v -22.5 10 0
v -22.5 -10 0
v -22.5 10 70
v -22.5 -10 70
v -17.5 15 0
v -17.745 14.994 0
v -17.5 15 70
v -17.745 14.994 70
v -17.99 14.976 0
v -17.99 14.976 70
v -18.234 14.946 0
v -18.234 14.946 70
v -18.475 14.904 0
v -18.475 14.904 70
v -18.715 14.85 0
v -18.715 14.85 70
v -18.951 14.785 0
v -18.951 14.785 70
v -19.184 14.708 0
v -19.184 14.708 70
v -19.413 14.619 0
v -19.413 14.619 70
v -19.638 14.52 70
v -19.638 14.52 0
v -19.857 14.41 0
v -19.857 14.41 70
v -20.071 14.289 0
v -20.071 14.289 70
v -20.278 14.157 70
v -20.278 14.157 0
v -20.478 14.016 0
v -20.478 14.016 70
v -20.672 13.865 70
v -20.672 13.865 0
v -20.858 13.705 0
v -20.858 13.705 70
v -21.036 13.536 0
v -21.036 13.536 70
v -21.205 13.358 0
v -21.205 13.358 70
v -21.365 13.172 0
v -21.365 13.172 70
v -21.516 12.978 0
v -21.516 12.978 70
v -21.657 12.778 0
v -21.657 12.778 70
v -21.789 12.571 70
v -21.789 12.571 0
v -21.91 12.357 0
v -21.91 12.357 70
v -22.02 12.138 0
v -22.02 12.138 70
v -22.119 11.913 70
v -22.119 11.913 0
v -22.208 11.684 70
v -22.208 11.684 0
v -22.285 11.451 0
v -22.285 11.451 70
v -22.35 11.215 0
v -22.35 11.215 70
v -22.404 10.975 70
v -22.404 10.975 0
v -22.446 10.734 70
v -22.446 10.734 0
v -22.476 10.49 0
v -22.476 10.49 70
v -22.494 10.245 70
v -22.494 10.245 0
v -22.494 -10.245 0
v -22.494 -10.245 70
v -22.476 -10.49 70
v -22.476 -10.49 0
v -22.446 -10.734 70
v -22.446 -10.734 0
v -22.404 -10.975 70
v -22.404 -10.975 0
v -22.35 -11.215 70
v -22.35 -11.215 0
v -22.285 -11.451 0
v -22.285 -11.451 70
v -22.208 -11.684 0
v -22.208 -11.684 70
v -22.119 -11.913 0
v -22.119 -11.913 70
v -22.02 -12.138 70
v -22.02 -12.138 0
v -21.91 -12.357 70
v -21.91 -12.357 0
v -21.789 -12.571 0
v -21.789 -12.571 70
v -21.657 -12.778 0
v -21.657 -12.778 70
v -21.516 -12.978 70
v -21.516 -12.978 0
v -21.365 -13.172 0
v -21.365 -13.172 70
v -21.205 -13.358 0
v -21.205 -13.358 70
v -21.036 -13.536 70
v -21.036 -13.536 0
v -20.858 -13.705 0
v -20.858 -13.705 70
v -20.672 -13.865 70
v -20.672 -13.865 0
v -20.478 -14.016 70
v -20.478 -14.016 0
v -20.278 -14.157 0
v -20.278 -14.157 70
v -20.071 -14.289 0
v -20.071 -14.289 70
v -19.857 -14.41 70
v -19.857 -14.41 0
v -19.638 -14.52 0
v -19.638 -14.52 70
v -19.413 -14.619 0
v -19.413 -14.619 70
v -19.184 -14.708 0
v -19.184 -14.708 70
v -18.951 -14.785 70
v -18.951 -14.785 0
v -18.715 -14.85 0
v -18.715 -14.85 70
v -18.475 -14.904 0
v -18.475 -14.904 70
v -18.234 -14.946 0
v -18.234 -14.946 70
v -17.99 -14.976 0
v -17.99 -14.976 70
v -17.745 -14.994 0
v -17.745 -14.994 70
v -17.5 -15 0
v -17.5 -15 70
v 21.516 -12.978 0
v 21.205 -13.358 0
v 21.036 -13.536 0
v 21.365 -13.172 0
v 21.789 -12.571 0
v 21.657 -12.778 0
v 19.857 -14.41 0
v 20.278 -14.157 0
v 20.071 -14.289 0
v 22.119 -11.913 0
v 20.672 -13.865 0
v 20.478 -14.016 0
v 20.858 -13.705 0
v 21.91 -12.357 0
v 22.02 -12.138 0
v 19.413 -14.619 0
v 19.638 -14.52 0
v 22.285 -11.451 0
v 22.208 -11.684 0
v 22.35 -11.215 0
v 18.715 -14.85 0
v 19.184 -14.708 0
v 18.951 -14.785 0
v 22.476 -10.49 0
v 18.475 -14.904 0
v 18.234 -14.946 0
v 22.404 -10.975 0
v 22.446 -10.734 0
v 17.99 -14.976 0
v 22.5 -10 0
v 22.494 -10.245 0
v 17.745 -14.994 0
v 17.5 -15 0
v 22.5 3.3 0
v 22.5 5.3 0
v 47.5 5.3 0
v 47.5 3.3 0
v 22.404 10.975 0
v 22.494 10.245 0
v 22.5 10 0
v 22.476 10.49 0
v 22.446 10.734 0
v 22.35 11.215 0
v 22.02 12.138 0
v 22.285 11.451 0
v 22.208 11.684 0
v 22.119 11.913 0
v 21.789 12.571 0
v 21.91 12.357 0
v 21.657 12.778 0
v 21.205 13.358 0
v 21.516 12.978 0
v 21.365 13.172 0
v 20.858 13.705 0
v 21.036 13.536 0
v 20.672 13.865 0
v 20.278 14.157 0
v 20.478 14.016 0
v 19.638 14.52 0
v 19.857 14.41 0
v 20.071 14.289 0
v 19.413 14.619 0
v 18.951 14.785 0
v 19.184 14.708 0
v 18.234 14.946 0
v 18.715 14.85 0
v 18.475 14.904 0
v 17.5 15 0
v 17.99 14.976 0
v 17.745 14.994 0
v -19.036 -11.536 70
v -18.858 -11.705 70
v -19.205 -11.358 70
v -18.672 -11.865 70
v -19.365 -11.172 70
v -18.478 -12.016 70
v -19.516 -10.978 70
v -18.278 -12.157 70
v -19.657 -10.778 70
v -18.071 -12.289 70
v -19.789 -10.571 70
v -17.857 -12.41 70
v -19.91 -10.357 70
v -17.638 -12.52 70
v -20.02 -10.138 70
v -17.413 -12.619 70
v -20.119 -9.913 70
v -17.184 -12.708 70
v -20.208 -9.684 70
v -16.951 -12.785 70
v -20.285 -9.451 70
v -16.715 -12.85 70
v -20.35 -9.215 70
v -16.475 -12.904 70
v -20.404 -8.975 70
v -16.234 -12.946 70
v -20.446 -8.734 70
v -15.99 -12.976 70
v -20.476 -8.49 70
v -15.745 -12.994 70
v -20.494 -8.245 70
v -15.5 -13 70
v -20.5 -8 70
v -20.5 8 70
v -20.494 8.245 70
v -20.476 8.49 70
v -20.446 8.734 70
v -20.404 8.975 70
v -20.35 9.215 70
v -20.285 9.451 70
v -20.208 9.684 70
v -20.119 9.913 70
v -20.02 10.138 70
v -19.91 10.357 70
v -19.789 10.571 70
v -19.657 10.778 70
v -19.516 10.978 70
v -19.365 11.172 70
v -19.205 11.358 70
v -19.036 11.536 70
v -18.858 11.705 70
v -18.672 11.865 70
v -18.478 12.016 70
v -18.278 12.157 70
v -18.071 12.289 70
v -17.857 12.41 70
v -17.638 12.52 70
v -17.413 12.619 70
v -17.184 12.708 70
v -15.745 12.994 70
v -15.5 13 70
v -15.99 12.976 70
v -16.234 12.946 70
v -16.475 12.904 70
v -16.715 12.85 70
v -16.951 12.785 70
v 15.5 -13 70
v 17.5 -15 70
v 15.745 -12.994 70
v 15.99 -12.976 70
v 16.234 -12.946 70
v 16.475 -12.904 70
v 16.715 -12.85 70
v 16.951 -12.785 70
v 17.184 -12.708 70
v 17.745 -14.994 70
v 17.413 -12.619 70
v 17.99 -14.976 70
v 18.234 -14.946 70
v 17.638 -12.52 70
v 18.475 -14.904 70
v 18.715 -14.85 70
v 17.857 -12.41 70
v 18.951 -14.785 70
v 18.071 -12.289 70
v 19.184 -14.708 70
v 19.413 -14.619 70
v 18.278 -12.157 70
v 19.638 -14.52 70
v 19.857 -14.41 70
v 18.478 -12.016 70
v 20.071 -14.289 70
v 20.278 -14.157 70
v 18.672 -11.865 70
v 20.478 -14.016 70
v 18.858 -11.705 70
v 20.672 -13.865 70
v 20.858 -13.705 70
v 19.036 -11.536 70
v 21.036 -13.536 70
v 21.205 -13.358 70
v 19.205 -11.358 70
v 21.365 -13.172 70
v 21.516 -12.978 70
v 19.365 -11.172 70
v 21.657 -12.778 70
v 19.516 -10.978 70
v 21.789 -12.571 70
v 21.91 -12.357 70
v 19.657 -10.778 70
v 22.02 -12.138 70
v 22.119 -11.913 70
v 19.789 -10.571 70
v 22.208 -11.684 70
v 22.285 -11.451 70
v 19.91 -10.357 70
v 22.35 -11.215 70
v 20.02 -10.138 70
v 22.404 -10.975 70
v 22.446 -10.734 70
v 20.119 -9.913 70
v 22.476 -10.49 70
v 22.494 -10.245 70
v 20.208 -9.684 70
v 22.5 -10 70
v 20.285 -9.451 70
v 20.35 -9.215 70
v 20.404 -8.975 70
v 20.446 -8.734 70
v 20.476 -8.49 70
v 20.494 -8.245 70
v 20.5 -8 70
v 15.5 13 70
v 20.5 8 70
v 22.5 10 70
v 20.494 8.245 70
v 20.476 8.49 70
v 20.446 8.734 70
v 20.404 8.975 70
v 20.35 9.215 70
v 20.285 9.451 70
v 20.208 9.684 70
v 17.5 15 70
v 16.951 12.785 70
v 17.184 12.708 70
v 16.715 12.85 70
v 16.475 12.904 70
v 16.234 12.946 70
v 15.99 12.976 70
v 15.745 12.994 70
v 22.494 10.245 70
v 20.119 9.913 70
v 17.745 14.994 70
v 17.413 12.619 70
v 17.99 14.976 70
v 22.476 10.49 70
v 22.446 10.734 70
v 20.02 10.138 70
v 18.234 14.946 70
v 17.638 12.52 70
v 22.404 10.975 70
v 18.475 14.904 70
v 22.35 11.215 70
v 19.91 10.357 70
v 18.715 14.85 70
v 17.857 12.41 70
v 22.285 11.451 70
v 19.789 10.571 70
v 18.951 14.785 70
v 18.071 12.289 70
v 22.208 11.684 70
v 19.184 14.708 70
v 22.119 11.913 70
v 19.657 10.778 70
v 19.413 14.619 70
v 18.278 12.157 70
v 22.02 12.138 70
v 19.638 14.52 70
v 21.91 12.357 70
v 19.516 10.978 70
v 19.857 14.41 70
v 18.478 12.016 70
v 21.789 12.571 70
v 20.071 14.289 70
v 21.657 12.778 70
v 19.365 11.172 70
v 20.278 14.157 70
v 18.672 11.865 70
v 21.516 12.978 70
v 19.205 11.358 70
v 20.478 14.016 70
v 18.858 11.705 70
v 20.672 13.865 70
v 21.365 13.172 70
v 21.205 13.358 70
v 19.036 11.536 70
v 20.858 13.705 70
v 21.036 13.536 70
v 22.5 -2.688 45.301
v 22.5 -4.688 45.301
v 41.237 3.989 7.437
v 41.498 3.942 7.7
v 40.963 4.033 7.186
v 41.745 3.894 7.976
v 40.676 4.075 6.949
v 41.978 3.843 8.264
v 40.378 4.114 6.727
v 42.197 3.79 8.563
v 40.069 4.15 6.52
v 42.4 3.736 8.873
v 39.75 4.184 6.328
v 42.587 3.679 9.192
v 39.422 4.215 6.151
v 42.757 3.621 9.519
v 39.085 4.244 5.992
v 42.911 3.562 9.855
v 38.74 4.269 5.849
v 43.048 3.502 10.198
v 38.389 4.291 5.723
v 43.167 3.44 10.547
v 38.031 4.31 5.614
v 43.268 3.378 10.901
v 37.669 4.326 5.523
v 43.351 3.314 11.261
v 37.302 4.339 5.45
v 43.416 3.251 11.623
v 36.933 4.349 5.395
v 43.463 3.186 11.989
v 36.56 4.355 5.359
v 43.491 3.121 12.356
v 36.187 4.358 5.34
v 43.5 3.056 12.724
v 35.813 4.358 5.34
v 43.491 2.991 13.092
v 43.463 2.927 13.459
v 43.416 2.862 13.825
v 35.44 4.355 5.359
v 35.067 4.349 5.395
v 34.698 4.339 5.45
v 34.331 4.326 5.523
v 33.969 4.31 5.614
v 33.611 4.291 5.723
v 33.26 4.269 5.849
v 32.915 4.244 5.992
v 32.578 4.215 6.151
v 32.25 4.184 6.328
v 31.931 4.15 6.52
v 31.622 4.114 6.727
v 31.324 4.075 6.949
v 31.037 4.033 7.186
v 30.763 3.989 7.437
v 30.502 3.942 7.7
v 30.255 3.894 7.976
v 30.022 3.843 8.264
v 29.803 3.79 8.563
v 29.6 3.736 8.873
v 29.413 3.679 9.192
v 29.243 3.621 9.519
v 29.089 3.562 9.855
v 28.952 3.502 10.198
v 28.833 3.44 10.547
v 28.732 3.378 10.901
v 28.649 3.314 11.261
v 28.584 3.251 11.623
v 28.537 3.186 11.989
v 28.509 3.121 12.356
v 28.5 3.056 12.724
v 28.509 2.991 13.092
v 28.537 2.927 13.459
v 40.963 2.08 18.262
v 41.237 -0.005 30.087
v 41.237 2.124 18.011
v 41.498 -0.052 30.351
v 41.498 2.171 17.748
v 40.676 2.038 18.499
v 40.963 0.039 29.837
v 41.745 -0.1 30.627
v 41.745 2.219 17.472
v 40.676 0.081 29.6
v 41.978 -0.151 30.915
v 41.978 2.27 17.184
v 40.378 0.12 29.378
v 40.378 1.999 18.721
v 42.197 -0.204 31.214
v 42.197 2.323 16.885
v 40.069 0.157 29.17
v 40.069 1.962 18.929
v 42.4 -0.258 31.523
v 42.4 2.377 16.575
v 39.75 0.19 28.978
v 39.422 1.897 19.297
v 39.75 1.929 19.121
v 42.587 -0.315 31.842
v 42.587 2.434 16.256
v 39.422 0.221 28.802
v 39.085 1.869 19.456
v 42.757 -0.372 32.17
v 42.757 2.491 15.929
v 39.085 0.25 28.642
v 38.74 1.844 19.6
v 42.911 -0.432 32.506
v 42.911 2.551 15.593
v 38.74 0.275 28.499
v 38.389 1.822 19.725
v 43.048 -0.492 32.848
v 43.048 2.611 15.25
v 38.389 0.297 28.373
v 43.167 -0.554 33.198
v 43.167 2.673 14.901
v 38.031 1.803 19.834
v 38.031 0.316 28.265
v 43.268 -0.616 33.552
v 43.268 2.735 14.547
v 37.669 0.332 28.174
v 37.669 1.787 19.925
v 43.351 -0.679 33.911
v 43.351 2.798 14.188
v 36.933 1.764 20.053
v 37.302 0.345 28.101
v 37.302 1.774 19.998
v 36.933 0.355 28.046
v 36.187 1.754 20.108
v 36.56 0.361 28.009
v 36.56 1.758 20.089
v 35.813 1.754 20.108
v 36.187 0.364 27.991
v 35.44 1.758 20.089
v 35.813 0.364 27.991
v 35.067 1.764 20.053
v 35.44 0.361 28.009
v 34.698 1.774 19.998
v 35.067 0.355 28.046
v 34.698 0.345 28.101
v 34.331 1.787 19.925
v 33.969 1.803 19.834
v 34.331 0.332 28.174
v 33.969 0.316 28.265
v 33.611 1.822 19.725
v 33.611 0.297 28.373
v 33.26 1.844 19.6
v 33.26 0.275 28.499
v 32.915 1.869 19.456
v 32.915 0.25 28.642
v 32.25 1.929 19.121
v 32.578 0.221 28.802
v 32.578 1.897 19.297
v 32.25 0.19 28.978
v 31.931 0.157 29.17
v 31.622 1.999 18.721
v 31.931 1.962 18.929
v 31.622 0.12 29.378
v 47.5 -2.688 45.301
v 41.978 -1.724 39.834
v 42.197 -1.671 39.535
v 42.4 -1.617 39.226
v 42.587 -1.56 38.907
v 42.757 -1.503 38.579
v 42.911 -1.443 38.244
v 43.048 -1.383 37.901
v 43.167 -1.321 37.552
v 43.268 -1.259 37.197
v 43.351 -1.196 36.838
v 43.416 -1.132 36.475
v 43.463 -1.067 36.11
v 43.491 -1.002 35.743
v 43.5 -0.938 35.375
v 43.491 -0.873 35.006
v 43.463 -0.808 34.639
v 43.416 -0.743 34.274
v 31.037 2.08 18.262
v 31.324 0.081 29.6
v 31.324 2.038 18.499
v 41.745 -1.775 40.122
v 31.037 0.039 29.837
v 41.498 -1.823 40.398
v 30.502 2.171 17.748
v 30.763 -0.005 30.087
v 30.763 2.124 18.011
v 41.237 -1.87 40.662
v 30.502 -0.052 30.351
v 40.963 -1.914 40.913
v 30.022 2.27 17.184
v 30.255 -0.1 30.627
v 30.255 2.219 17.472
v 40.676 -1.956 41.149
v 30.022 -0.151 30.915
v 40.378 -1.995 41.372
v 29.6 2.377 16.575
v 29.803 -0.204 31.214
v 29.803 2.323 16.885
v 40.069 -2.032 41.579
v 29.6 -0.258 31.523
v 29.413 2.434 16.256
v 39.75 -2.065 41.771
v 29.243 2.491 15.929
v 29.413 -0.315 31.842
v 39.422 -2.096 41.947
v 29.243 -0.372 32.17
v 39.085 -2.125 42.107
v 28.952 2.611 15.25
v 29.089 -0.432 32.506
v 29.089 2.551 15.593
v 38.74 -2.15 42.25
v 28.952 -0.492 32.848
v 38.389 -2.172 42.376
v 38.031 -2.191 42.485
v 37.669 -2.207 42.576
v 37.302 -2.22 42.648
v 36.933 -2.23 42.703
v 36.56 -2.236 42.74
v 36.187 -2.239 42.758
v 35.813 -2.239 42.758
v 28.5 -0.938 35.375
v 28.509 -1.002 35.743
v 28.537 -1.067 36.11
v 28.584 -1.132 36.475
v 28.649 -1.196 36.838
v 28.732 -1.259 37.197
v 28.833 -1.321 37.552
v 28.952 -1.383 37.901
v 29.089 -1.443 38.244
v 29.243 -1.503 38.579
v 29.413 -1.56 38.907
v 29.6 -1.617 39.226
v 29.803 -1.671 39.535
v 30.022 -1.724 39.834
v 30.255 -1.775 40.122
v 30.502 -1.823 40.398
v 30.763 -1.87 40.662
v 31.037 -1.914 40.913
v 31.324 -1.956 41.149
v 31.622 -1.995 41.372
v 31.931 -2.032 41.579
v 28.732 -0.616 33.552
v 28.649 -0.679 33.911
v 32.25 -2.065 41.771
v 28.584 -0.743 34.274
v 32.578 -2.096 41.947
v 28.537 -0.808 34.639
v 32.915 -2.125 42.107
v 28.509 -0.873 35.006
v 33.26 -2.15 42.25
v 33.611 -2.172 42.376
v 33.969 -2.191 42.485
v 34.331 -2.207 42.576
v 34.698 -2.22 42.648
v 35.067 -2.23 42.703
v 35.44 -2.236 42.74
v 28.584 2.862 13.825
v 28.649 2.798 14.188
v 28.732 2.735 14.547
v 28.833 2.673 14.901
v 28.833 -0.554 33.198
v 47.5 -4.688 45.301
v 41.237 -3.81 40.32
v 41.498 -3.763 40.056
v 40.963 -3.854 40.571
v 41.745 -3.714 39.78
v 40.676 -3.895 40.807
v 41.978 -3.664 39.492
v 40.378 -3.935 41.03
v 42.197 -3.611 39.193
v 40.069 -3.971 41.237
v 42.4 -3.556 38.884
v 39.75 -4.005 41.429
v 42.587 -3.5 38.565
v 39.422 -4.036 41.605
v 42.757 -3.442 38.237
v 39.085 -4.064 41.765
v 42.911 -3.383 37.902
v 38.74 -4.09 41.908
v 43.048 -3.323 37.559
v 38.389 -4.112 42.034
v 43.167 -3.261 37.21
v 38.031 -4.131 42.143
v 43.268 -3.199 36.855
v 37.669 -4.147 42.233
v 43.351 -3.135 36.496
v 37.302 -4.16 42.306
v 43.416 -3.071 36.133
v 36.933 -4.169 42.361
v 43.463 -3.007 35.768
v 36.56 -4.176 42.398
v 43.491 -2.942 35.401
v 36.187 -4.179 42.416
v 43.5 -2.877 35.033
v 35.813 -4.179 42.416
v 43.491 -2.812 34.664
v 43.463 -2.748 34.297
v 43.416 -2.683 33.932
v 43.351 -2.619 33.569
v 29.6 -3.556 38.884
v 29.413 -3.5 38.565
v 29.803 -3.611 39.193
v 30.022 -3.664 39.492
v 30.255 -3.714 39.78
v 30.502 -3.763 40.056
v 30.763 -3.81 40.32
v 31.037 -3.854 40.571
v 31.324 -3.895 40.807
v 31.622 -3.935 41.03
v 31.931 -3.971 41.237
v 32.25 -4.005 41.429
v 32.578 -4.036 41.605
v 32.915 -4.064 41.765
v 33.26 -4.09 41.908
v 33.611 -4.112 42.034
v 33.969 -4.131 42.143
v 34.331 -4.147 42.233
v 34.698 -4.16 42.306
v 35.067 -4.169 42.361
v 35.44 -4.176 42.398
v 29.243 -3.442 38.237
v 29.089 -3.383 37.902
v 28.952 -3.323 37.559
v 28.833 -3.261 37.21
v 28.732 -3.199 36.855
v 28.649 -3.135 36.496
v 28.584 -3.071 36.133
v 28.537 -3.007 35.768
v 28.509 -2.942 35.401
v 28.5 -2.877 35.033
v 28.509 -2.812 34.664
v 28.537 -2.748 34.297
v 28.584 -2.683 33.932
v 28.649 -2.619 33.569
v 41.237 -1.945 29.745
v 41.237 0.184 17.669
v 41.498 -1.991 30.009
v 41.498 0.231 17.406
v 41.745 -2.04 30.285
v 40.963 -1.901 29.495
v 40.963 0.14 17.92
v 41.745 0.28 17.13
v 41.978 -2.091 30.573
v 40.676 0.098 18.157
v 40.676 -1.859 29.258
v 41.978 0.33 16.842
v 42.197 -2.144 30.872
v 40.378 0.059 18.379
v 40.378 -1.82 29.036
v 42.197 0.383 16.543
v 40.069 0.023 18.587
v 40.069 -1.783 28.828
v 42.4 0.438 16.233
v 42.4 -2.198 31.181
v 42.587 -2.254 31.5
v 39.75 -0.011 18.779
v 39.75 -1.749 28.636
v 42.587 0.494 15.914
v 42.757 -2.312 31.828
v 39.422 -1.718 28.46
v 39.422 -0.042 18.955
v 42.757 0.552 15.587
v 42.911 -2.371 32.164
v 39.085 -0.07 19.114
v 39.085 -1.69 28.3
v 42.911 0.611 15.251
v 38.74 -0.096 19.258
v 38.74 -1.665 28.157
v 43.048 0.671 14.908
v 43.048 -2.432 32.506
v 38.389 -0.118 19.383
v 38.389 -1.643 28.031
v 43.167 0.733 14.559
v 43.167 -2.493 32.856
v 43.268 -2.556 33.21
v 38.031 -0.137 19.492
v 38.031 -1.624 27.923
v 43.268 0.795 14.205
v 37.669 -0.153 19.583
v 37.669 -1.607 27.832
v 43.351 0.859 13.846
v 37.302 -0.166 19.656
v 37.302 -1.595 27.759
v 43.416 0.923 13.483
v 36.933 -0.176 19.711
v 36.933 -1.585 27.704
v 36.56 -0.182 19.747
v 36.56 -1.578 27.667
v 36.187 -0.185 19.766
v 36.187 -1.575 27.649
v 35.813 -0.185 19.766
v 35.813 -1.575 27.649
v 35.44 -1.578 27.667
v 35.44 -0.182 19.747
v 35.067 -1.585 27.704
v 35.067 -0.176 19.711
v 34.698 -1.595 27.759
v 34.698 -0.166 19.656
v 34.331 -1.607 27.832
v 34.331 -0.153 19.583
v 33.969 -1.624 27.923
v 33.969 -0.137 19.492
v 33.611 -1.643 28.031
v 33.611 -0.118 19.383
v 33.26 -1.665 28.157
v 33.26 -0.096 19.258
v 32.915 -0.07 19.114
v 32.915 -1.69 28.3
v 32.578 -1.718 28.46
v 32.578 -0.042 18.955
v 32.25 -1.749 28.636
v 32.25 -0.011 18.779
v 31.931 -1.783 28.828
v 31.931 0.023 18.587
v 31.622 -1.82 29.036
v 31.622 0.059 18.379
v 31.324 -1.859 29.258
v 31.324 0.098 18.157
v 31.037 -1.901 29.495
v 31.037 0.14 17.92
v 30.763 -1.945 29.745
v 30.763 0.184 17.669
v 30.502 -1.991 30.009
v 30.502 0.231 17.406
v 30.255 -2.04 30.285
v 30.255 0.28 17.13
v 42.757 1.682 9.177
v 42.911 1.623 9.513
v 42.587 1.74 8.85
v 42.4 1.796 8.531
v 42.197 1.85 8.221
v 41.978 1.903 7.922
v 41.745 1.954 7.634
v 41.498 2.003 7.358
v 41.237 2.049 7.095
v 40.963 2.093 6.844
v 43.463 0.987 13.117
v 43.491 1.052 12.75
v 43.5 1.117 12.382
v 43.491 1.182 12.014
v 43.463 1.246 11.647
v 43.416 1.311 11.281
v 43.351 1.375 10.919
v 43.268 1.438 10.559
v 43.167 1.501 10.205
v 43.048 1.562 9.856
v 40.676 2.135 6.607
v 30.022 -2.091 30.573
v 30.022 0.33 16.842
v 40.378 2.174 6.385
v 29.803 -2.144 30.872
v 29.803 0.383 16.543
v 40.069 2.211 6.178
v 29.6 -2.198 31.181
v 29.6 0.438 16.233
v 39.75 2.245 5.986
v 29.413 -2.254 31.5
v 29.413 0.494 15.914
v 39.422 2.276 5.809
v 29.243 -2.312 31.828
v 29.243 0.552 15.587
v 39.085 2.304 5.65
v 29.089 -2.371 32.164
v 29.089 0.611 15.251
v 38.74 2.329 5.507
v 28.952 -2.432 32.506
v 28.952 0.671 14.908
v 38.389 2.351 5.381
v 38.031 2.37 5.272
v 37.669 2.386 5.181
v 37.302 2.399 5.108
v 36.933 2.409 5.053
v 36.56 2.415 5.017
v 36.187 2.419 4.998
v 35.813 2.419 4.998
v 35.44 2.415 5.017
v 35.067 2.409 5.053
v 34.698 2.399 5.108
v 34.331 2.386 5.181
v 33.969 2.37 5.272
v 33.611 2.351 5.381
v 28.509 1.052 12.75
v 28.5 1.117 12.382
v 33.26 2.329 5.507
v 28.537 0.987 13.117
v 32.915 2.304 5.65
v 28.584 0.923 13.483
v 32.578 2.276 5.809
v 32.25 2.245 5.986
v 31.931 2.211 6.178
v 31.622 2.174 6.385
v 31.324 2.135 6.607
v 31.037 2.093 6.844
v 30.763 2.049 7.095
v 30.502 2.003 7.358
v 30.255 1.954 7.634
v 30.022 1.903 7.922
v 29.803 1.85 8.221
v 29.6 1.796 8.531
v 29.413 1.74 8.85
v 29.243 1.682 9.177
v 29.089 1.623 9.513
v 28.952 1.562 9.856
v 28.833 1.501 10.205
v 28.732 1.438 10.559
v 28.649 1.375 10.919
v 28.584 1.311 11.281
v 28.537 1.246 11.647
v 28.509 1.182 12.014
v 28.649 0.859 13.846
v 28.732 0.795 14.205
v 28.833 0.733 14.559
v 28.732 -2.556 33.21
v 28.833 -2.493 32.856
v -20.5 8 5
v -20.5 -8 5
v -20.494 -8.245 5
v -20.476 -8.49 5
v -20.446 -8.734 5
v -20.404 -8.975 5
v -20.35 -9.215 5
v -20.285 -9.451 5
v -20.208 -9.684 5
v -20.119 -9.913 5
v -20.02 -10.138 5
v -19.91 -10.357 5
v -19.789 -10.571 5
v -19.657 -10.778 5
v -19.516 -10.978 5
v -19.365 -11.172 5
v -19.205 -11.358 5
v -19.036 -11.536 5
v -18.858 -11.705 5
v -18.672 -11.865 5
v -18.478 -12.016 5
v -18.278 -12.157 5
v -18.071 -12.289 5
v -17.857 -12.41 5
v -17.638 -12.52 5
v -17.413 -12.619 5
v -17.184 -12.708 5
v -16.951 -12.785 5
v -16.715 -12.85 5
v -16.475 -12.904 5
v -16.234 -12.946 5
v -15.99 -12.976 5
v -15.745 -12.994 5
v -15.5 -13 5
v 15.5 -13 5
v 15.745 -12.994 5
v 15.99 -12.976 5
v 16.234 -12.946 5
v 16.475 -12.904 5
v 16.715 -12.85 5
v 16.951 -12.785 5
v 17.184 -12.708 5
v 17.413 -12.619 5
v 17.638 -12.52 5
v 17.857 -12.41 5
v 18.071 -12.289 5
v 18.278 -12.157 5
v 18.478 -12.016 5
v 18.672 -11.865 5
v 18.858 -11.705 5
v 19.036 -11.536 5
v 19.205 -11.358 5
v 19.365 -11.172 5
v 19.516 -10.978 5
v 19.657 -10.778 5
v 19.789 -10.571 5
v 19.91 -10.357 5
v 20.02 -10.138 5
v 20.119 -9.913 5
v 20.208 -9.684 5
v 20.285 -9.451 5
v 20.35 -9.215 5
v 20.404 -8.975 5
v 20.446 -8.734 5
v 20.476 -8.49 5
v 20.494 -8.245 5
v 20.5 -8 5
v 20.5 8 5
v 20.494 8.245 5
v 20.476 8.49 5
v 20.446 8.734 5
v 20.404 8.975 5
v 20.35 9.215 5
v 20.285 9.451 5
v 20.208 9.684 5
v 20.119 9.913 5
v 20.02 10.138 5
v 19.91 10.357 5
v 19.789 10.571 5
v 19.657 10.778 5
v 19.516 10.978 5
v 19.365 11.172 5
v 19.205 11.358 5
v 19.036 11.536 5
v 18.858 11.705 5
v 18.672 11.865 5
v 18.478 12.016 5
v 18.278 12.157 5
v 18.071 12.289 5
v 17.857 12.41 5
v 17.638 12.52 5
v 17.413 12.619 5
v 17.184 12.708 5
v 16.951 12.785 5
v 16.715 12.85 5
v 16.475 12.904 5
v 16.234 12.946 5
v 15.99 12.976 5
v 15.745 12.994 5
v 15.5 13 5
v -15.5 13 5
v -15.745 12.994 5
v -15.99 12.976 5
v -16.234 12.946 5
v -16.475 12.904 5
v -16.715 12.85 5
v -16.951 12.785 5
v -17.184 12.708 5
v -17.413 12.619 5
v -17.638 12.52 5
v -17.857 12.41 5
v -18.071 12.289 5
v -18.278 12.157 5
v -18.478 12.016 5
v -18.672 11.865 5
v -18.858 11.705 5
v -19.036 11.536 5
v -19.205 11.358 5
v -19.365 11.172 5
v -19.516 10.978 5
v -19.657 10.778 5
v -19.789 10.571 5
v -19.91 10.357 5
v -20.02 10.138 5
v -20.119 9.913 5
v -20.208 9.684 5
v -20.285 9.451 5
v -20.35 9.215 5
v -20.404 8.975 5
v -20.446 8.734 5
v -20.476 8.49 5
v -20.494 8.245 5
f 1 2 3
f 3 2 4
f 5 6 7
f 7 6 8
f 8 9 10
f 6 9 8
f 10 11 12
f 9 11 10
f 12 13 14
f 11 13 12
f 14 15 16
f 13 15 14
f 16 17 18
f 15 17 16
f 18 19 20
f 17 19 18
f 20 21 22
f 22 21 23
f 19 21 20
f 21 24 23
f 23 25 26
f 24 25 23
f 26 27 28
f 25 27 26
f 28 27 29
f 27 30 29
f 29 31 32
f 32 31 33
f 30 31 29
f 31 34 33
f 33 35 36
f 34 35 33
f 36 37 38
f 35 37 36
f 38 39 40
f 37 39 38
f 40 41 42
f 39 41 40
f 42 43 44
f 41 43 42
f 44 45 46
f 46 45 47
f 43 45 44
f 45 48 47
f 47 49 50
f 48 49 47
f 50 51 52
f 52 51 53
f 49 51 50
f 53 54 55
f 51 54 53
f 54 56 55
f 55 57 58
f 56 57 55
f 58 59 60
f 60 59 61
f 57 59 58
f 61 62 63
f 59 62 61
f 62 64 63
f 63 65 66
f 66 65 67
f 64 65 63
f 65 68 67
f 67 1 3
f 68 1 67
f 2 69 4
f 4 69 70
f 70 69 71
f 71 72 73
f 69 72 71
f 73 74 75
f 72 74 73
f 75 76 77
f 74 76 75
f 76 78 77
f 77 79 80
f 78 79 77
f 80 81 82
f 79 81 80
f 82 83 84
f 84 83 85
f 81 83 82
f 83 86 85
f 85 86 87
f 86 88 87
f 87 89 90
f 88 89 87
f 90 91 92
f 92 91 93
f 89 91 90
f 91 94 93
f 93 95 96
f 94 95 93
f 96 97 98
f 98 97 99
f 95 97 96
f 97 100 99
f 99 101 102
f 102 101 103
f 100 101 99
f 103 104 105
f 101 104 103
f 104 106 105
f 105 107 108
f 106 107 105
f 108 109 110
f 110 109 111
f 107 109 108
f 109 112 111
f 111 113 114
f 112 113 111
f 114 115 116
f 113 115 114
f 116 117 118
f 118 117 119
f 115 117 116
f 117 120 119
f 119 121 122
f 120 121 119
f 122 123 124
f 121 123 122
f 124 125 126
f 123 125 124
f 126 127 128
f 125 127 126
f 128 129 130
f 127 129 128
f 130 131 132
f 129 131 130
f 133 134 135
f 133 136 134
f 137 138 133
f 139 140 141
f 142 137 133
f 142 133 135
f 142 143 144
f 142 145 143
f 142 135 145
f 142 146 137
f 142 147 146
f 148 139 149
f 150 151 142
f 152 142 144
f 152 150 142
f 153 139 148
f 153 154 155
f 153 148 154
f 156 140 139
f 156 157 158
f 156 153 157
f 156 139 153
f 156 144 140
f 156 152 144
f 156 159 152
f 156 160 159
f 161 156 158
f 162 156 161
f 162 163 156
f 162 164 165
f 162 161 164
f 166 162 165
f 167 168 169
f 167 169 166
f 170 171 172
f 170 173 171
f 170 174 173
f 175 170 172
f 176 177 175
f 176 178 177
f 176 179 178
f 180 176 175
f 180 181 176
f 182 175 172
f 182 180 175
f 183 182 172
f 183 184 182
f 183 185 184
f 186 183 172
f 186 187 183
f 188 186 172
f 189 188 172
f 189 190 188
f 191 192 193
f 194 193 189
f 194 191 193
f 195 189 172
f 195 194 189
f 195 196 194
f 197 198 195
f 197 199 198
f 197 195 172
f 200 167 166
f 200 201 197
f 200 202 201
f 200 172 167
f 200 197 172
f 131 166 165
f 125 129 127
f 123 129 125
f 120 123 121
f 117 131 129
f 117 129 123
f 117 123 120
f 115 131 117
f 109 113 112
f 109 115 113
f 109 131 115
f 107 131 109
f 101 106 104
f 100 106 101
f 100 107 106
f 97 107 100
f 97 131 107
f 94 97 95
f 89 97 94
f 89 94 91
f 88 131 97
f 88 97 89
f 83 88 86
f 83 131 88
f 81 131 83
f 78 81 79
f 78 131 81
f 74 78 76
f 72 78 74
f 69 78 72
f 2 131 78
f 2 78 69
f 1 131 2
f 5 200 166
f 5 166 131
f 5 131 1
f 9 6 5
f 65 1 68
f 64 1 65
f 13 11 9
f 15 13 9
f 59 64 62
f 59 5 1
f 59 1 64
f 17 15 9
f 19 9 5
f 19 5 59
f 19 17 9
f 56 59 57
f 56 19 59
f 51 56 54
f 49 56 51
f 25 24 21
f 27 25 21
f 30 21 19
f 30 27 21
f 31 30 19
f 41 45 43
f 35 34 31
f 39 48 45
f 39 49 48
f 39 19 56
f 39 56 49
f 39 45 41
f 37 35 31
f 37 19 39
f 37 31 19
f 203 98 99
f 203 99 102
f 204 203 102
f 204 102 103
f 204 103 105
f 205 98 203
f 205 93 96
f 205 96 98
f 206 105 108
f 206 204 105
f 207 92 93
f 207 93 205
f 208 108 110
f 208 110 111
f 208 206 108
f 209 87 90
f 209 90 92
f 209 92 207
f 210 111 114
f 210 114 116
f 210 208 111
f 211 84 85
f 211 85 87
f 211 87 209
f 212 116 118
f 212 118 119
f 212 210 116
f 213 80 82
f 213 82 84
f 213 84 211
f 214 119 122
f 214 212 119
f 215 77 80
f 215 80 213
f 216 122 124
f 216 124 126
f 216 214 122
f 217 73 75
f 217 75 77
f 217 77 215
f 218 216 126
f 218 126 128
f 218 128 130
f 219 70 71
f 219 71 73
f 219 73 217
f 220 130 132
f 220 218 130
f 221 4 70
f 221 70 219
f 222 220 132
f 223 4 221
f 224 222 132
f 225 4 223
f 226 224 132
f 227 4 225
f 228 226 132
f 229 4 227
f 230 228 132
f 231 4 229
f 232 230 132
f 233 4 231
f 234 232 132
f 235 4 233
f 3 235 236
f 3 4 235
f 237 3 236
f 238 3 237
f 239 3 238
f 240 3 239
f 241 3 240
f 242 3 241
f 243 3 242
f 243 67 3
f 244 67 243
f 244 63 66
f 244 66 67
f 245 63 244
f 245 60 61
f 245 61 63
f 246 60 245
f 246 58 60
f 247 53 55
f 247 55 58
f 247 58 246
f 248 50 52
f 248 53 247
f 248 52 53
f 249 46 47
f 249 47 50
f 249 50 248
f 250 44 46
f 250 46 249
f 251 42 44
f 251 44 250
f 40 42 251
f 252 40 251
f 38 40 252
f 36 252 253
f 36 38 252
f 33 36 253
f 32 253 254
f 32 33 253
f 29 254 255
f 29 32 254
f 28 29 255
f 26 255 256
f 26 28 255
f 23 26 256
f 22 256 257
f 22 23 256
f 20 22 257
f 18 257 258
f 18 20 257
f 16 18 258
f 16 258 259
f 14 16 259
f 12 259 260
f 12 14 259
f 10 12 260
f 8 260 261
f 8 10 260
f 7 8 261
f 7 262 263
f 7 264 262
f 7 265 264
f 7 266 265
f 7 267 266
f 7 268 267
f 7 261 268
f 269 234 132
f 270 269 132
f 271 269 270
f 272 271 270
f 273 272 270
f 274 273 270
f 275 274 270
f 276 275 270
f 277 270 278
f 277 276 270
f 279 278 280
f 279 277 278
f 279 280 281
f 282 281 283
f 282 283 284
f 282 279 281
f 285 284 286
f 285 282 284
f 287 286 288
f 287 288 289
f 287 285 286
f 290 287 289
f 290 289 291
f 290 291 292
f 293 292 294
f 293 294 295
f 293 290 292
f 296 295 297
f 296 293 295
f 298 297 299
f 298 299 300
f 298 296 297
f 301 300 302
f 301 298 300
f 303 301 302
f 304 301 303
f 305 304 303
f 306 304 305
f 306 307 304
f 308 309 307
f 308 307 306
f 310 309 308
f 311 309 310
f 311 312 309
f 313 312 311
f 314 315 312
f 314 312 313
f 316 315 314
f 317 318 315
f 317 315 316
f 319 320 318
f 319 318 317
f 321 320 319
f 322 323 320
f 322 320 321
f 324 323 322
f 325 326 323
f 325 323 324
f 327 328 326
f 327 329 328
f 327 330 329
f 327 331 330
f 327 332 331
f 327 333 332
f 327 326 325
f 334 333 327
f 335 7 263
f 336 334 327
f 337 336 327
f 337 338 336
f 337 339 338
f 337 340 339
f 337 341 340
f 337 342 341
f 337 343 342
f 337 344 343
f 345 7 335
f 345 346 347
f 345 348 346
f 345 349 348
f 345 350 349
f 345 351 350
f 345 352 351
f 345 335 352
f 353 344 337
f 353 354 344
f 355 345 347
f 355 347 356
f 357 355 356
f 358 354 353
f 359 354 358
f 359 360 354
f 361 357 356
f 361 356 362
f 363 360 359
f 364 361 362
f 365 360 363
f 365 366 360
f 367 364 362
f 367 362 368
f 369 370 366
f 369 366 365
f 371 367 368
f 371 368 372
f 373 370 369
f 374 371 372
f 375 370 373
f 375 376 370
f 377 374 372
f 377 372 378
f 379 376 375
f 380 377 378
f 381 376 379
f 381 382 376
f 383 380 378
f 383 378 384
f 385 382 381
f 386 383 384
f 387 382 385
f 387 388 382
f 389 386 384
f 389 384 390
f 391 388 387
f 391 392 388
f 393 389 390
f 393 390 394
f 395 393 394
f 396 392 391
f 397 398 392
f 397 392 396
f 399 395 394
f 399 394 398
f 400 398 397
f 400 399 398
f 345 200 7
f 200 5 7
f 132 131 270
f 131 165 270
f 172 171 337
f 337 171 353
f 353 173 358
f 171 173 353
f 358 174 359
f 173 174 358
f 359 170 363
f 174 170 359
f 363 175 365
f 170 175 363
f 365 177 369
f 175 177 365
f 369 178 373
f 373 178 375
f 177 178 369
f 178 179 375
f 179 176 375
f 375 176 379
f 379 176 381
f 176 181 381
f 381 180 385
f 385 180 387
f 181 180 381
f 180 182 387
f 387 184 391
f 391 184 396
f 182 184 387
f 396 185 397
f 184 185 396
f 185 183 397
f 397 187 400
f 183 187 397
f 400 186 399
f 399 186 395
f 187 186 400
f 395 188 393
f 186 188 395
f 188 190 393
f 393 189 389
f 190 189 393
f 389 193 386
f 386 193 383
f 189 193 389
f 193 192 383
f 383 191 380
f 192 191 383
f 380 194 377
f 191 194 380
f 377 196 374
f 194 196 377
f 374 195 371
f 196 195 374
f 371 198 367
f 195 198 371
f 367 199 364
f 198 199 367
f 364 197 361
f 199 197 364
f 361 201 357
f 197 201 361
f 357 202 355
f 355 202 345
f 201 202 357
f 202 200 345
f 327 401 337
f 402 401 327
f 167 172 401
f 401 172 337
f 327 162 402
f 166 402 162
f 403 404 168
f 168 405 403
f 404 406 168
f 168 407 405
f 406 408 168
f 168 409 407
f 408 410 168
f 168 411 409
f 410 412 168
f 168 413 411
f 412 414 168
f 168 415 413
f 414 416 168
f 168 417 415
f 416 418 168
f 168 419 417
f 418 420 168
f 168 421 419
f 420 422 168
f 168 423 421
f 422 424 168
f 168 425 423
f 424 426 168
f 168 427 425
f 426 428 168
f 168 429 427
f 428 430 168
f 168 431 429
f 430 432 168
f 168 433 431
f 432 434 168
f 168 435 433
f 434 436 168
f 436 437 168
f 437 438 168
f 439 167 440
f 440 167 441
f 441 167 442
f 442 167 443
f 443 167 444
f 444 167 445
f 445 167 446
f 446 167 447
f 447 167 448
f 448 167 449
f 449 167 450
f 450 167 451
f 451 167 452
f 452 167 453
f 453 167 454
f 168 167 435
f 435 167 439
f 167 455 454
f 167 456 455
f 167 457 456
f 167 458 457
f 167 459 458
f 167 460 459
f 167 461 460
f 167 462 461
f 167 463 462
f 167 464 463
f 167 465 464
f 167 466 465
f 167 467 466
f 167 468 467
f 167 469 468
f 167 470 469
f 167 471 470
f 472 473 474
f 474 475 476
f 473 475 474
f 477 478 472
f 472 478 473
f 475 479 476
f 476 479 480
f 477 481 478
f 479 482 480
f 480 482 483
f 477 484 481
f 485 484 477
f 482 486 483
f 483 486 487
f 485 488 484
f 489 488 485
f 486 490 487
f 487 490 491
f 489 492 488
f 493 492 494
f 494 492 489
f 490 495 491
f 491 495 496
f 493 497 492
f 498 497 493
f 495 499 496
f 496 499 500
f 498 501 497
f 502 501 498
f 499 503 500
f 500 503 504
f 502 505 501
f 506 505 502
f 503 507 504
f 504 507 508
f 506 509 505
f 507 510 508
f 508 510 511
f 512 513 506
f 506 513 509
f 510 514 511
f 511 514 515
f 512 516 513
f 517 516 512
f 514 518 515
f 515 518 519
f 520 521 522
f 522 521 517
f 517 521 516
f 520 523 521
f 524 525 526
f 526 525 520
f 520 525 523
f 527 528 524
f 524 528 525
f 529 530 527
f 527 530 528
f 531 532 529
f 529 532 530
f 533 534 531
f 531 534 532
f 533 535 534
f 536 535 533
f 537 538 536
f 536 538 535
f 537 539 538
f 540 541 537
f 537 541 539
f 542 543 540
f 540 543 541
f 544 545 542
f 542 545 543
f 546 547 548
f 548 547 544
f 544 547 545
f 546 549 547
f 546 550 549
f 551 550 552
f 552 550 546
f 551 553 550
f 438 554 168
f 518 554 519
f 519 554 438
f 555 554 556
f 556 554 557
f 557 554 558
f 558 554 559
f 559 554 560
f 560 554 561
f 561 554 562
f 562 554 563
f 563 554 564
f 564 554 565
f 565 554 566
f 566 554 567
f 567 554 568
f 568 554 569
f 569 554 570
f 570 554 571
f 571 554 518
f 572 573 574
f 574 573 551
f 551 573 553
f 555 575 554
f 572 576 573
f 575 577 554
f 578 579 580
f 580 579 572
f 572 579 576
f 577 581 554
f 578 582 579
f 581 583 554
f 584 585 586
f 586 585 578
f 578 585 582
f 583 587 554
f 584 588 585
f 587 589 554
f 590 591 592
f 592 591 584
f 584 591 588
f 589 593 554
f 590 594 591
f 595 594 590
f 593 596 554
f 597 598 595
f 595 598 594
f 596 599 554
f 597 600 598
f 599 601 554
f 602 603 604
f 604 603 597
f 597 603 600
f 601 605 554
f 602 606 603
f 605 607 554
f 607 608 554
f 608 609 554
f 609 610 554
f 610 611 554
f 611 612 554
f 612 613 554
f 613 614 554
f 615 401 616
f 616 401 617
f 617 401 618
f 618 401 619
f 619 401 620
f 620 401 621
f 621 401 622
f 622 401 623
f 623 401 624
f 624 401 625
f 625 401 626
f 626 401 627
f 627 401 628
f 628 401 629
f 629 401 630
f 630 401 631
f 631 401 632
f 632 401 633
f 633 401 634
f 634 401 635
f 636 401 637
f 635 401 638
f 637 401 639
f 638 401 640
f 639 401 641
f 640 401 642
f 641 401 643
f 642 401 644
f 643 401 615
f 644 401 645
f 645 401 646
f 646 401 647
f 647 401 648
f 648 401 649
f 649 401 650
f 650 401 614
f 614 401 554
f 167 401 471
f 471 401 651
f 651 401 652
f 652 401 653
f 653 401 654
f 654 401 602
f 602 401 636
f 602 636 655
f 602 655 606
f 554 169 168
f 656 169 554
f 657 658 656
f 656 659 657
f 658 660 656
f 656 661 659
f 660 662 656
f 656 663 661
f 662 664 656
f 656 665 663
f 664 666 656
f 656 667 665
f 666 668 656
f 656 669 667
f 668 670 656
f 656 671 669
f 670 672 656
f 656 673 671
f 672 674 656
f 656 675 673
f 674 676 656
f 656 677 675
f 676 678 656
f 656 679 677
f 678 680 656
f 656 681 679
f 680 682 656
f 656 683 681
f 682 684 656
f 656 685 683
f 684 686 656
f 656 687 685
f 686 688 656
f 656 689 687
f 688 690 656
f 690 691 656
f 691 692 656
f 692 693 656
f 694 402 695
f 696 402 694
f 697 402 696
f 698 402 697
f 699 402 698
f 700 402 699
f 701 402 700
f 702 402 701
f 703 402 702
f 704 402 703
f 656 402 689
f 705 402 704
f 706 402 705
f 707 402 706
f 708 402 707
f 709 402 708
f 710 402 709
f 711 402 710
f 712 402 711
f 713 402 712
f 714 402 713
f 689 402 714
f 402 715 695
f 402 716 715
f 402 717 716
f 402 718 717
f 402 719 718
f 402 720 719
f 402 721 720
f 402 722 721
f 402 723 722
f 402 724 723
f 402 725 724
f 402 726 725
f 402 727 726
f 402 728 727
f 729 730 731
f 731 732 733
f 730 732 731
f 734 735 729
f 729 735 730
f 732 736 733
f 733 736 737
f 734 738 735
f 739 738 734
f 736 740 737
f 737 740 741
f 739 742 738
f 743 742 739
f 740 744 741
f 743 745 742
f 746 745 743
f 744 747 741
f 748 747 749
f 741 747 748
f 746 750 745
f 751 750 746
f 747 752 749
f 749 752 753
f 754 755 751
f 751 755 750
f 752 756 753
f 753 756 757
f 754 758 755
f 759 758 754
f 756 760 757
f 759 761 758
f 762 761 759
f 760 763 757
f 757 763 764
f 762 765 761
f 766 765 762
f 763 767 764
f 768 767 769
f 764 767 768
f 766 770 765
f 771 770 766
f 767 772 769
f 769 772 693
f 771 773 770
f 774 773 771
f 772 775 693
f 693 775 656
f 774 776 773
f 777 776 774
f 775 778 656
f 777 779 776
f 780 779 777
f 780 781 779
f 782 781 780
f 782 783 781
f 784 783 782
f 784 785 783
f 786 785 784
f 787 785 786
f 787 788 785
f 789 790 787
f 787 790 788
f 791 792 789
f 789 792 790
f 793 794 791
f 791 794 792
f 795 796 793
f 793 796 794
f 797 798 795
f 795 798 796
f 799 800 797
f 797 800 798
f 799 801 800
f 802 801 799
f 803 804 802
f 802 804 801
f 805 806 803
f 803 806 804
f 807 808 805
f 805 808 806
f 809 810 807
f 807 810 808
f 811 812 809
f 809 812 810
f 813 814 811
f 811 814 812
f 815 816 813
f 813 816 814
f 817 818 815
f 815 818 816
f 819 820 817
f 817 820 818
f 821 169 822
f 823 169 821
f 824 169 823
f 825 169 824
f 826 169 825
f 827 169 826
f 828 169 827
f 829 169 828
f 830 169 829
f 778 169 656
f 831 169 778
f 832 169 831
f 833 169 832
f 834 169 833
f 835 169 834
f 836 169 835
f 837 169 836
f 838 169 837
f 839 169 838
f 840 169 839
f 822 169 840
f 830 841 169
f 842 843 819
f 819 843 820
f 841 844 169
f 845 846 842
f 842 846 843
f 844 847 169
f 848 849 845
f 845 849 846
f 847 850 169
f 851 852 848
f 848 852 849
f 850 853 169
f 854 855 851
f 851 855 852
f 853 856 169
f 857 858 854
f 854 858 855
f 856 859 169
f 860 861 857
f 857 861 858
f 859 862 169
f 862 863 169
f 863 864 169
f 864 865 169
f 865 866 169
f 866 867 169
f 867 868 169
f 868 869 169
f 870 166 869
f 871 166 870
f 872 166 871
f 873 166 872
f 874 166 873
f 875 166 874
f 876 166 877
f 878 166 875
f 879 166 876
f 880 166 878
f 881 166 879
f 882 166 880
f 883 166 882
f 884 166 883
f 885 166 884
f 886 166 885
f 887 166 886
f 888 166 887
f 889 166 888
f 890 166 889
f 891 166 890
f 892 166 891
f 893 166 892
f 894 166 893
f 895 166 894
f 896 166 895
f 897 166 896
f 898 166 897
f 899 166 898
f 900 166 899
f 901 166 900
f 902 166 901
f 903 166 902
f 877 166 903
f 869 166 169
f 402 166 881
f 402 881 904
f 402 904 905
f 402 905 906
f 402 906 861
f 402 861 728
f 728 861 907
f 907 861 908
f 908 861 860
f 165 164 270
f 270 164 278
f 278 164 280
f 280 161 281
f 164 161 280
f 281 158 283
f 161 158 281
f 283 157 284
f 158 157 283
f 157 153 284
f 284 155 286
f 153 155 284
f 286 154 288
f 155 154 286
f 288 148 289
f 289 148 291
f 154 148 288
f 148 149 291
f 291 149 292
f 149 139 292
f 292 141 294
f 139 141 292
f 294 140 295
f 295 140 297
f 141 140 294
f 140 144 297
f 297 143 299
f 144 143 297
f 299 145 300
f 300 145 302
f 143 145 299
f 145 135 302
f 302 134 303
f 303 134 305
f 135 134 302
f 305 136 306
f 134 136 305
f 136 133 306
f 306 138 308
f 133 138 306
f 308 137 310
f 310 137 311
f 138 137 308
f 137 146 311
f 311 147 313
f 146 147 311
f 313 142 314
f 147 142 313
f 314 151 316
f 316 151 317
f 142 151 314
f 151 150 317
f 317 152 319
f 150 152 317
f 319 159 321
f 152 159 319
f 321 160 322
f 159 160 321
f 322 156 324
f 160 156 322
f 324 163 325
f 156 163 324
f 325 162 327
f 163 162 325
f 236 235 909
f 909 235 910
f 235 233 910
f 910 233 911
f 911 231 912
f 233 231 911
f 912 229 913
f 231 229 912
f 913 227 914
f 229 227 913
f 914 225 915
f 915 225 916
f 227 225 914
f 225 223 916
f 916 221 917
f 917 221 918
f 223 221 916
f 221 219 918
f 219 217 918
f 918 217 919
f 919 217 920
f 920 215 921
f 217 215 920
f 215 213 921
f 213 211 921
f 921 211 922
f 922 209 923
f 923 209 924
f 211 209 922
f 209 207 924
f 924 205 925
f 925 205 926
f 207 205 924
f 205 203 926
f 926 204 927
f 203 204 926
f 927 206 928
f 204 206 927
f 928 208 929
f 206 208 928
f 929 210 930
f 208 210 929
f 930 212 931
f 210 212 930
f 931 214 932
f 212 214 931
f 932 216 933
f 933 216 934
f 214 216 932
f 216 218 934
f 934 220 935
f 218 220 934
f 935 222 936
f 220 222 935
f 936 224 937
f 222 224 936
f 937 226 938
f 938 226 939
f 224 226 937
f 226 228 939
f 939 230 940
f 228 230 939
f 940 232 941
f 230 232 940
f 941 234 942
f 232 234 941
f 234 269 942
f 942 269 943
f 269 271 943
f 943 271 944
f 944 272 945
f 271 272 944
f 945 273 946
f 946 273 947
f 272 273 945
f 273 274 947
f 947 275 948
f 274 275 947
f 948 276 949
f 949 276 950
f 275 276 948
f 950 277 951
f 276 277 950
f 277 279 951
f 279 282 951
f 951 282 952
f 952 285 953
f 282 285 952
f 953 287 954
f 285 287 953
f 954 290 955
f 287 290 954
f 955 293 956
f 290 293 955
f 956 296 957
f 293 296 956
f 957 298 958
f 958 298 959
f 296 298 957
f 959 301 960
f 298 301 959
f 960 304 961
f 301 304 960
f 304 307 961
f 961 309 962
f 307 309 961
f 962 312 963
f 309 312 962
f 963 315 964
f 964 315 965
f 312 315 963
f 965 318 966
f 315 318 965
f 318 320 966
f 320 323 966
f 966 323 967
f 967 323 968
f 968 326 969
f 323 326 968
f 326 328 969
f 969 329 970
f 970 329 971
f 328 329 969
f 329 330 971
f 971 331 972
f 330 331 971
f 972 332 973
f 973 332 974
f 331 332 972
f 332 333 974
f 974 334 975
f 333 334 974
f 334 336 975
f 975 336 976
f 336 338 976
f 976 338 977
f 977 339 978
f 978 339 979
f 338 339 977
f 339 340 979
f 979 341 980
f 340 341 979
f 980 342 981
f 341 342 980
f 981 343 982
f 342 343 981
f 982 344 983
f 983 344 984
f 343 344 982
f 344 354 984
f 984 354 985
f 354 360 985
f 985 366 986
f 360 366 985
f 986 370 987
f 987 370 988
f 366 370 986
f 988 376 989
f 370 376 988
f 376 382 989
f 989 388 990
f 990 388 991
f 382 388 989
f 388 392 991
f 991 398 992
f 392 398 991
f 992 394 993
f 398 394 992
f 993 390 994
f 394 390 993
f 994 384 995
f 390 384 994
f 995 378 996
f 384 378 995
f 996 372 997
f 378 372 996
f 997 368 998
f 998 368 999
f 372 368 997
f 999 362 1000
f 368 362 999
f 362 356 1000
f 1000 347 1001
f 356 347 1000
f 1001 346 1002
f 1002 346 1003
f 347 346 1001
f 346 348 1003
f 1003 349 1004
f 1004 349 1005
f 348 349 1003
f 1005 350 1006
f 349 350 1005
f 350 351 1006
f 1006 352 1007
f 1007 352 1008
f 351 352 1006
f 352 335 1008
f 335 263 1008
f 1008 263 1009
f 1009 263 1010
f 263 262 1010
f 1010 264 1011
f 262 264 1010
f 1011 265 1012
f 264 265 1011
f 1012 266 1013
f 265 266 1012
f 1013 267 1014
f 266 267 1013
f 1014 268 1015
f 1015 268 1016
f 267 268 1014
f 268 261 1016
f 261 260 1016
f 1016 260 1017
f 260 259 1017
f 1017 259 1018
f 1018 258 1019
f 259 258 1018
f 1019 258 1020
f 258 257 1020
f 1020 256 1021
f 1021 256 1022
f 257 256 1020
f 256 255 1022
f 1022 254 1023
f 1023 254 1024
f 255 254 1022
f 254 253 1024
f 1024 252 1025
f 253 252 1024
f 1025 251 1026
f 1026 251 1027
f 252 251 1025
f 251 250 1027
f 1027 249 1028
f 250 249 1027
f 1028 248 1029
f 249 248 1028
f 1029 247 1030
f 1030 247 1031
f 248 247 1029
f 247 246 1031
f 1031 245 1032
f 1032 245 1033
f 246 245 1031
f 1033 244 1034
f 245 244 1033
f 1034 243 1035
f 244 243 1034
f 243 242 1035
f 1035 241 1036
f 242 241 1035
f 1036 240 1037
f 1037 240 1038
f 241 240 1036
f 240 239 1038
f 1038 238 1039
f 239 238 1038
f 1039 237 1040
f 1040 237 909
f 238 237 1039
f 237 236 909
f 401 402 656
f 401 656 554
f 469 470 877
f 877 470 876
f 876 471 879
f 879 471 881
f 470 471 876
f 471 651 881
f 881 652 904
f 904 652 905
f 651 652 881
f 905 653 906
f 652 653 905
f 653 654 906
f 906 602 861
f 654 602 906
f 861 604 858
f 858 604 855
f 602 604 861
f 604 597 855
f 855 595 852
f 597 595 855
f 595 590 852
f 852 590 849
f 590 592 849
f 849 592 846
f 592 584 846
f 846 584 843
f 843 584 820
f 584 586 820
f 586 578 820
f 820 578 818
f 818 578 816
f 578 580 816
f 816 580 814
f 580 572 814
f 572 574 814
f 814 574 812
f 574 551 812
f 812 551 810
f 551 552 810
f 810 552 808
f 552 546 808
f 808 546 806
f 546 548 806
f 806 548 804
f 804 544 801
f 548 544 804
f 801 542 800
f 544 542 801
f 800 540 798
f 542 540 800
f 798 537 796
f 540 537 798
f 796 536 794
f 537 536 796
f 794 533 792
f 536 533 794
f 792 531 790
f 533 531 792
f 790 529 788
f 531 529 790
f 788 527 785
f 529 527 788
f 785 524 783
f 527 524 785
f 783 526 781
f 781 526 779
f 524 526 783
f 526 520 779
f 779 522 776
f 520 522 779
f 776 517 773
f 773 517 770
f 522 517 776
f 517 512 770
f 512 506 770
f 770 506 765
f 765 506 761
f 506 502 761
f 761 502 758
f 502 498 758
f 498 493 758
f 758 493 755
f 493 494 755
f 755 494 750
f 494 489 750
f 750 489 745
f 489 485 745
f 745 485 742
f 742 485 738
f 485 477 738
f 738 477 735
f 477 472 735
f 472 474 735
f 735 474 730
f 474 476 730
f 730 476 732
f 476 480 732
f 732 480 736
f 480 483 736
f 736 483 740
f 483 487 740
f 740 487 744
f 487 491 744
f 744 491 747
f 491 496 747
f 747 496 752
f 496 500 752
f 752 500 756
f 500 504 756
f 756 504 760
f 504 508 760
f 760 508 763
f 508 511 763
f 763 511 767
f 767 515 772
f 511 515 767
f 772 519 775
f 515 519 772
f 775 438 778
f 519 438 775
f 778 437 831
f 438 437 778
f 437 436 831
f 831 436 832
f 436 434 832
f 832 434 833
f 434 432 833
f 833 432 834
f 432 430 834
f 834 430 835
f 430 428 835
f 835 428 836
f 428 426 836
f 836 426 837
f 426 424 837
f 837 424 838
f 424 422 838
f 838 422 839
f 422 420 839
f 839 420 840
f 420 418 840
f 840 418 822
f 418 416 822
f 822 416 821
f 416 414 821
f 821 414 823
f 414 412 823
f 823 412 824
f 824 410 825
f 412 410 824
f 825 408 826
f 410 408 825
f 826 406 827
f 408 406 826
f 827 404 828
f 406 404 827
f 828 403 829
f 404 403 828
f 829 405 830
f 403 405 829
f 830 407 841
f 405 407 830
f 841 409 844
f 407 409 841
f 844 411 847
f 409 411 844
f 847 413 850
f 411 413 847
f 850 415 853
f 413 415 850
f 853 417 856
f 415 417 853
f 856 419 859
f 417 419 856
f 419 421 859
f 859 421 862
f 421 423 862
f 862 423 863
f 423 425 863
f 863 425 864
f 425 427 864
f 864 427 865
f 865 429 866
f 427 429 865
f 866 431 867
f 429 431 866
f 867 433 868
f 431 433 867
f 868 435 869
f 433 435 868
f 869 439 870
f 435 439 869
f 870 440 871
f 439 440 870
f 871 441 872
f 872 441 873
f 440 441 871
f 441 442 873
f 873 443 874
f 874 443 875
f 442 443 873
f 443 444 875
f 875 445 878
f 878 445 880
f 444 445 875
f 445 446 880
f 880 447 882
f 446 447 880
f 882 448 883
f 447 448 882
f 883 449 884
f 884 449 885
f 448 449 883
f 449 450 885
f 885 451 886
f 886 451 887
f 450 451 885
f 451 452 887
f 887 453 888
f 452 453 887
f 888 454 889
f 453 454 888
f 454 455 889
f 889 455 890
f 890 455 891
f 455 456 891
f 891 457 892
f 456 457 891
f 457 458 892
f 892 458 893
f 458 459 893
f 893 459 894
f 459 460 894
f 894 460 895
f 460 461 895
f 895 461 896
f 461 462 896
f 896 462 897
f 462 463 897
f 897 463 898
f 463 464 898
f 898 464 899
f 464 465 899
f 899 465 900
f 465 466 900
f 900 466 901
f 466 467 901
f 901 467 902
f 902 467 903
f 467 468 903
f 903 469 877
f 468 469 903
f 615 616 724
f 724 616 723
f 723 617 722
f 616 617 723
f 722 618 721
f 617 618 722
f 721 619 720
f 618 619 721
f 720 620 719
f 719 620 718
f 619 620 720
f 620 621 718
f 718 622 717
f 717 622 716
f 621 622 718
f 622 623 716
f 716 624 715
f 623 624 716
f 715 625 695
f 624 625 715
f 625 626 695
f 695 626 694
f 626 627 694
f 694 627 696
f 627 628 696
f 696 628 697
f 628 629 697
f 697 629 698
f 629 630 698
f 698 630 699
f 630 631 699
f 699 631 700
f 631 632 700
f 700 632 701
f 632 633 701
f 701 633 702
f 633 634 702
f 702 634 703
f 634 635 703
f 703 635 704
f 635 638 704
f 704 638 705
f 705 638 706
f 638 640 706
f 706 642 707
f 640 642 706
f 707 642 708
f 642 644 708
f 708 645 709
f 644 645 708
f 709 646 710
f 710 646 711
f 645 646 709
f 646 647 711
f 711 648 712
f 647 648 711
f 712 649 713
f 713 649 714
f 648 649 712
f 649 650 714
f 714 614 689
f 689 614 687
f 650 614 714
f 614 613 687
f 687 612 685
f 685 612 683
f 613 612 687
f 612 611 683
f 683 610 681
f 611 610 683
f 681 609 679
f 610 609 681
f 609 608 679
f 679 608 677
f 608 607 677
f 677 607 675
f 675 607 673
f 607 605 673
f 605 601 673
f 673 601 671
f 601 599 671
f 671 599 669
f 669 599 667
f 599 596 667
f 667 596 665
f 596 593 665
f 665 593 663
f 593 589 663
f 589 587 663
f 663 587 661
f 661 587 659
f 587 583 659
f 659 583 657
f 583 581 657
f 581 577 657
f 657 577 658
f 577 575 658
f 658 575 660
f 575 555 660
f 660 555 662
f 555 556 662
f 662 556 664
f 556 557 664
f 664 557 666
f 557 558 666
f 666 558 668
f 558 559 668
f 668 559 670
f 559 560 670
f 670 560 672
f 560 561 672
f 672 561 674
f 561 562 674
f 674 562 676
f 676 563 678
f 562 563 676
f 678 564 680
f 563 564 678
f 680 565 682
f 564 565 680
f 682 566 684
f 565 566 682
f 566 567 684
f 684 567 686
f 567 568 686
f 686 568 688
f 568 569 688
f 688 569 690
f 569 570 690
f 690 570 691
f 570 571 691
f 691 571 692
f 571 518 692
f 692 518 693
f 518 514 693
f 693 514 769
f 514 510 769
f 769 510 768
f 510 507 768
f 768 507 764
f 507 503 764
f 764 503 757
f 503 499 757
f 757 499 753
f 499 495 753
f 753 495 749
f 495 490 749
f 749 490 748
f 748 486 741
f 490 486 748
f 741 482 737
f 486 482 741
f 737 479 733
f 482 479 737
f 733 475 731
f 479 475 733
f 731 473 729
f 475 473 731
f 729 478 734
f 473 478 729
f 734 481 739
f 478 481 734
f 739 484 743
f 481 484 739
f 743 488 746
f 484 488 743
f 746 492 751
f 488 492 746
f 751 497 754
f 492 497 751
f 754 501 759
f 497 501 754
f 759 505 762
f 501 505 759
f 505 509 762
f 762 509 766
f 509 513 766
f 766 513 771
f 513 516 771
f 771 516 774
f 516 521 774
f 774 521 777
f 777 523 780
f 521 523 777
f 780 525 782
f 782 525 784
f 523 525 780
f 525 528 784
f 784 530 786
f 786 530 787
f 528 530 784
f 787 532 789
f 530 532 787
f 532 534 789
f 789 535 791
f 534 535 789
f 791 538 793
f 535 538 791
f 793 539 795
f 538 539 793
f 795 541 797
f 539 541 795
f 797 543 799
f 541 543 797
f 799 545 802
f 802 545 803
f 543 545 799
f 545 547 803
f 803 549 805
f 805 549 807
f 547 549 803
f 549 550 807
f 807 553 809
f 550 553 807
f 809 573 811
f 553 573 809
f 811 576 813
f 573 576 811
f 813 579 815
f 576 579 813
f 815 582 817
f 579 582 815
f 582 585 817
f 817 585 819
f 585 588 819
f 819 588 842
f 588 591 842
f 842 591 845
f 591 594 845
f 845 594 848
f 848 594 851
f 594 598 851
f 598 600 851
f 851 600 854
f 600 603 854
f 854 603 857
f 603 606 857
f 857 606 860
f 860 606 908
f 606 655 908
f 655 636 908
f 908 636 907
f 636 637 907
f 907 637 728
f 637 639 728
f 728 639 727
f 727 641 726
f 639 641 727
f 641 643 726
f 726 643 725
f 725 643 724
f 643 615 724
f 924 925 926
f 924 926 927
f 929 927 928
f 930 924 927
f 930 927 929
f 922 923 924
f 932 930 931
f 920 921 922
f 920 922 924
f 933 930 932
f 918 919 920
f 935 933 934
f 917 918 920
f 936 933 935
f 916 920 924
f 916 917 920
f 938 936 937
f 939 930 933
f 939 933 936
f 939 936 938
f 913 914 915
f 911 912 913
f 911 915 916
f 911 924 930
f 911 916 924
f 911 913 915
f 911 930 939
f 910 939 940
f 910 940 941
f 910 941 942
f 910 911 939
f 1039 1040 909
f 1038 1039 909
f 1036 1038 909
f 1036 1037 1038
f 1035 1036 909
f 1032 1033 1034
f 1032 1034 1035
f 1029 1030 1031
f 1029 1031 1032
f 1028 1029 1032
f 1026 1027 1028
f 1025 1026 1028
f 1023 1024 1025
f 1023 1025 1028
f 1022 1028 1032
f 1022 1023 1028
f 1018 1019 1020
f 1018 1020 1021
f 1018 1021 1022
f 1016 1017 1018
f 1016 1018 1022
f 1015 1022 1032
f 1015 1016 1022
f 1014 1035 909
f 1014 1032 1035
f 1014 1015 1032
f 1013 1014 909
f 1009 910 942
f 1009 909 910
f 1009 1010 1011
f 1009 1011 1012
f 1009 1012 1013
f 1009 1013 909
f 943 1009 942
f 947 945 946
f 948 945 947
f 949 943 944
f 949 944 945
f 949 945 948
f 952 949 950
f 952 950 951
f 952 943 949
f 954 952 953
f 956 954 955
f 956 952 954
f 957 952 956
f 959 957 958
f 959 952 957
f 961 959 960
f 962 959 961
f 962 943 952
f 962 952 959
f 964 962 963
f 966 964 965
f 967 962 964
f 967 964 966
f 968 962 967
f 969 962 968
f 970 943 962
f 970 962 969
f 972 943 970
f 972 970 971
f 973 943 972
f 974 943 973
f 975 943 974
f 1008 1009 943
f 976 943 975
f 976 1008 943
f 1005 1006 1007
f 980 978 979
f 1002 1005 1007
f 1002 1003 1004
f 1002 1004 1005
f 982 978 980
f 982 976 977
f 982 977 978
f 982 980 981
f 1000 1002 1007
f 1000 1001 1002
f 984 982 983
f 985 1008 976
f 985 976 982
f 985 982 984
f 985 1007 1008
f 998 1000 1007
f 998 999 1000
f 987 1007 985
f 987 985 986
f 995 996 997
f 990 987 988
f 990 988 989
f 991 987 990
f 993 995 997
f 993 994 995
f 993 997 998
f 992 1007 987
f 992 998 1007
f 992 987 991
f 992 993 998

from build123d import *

# Parameters (mm, degrees)
PAD_DEPTH       = 70
POCKET_DEPTH    = 65
PAD001_DEPTH    = 25
SKETCH003_R     = 7.5
POCKET001_DEPTH = 5


with BuildPart() as part:
    # Sketch → Pad (new body)
    with BuildSketch(Plane.XY):
        with BuildLine():
            Line((-22.5, 10), (-22.5, -10))
            ThreePointArc((-22.5, -10), (-21.035534, -13.535534), (-17.5, -15))
            Line((-17.5, -15), (17.5, -15))
            ThreePointArc((17.5, -15), (21.035534, -13.535534), (22.5, -10))
            Line((22.5, -10), (22.5, 10))
            ThreePointArc((22.5, 10), (21.035534, 13.535534), (17.5, 15))
            Line((17.5, 15), (-17.5, 15))
            ThreePointArc((-17.5, 15), (-21.035534, 13.535534), (-22.5, 10))
        make_face()
    extrude(amount=PAD_DEPTH)

    # Sketch001 (on Face10 of Pad) → Pocket (cut)
    with BuildSketch(Plane.XY.offset(70)):
        with BuildLine():
            Line((-20.5, 8), (-20.5, -8))
            ThreePointArc((-20.5, -8), (-19.035534, -11.535534), (-15.5, -13))
            Line((-15.5, -13), (15.5, -13))
            ThreePointArc((15.5, -13), (19.035534, -11.535534), (20.5, -8))
            Line((20.5, -8), (20.5, 8))
            ThreePointArc((20.5, 8), (19.035534, 11.535534), (15.5, 13))
            Line((15.5, 13), (-15.5, 13))
            ThreePointArc((-15.5, 13), (-19.035534, 11.535534), (-20.5, 8))
        make_face()
    extrude(amount=-POCKET_DEPTH, mode=Mode.SUBTRACT)

    # Sketch002 (on Face9 of Pocket) → Pad001 (join)
    with BuildSketch(Plane.YZ.offset(22.5)):
        Polygon((5.3, 0), (-2.687816, 45.301157), (-4.687816, 45.301157), (3.3, 0), align=None)
    extrude(amount=PAD001_DEPTH)

    # Sketch003 (on Face20 of Pad001) → Pocket001 (cut)
    with BuildSketch(Plane(origin=(0, 5.140185, 0.906353), x_dir=(-1, 0, 0), z_dir=(0, 0.984808, 0.173648))):
        with Locations((-36, 35)):
            Circle(SKETCH003_R)
        with Locations((-36, 12)):
            Circle(SKETCH003_R)
    extrude(amount=-POCKET001_DEPTH, mode=Mode.SUBTRACT)


solid = part.part
